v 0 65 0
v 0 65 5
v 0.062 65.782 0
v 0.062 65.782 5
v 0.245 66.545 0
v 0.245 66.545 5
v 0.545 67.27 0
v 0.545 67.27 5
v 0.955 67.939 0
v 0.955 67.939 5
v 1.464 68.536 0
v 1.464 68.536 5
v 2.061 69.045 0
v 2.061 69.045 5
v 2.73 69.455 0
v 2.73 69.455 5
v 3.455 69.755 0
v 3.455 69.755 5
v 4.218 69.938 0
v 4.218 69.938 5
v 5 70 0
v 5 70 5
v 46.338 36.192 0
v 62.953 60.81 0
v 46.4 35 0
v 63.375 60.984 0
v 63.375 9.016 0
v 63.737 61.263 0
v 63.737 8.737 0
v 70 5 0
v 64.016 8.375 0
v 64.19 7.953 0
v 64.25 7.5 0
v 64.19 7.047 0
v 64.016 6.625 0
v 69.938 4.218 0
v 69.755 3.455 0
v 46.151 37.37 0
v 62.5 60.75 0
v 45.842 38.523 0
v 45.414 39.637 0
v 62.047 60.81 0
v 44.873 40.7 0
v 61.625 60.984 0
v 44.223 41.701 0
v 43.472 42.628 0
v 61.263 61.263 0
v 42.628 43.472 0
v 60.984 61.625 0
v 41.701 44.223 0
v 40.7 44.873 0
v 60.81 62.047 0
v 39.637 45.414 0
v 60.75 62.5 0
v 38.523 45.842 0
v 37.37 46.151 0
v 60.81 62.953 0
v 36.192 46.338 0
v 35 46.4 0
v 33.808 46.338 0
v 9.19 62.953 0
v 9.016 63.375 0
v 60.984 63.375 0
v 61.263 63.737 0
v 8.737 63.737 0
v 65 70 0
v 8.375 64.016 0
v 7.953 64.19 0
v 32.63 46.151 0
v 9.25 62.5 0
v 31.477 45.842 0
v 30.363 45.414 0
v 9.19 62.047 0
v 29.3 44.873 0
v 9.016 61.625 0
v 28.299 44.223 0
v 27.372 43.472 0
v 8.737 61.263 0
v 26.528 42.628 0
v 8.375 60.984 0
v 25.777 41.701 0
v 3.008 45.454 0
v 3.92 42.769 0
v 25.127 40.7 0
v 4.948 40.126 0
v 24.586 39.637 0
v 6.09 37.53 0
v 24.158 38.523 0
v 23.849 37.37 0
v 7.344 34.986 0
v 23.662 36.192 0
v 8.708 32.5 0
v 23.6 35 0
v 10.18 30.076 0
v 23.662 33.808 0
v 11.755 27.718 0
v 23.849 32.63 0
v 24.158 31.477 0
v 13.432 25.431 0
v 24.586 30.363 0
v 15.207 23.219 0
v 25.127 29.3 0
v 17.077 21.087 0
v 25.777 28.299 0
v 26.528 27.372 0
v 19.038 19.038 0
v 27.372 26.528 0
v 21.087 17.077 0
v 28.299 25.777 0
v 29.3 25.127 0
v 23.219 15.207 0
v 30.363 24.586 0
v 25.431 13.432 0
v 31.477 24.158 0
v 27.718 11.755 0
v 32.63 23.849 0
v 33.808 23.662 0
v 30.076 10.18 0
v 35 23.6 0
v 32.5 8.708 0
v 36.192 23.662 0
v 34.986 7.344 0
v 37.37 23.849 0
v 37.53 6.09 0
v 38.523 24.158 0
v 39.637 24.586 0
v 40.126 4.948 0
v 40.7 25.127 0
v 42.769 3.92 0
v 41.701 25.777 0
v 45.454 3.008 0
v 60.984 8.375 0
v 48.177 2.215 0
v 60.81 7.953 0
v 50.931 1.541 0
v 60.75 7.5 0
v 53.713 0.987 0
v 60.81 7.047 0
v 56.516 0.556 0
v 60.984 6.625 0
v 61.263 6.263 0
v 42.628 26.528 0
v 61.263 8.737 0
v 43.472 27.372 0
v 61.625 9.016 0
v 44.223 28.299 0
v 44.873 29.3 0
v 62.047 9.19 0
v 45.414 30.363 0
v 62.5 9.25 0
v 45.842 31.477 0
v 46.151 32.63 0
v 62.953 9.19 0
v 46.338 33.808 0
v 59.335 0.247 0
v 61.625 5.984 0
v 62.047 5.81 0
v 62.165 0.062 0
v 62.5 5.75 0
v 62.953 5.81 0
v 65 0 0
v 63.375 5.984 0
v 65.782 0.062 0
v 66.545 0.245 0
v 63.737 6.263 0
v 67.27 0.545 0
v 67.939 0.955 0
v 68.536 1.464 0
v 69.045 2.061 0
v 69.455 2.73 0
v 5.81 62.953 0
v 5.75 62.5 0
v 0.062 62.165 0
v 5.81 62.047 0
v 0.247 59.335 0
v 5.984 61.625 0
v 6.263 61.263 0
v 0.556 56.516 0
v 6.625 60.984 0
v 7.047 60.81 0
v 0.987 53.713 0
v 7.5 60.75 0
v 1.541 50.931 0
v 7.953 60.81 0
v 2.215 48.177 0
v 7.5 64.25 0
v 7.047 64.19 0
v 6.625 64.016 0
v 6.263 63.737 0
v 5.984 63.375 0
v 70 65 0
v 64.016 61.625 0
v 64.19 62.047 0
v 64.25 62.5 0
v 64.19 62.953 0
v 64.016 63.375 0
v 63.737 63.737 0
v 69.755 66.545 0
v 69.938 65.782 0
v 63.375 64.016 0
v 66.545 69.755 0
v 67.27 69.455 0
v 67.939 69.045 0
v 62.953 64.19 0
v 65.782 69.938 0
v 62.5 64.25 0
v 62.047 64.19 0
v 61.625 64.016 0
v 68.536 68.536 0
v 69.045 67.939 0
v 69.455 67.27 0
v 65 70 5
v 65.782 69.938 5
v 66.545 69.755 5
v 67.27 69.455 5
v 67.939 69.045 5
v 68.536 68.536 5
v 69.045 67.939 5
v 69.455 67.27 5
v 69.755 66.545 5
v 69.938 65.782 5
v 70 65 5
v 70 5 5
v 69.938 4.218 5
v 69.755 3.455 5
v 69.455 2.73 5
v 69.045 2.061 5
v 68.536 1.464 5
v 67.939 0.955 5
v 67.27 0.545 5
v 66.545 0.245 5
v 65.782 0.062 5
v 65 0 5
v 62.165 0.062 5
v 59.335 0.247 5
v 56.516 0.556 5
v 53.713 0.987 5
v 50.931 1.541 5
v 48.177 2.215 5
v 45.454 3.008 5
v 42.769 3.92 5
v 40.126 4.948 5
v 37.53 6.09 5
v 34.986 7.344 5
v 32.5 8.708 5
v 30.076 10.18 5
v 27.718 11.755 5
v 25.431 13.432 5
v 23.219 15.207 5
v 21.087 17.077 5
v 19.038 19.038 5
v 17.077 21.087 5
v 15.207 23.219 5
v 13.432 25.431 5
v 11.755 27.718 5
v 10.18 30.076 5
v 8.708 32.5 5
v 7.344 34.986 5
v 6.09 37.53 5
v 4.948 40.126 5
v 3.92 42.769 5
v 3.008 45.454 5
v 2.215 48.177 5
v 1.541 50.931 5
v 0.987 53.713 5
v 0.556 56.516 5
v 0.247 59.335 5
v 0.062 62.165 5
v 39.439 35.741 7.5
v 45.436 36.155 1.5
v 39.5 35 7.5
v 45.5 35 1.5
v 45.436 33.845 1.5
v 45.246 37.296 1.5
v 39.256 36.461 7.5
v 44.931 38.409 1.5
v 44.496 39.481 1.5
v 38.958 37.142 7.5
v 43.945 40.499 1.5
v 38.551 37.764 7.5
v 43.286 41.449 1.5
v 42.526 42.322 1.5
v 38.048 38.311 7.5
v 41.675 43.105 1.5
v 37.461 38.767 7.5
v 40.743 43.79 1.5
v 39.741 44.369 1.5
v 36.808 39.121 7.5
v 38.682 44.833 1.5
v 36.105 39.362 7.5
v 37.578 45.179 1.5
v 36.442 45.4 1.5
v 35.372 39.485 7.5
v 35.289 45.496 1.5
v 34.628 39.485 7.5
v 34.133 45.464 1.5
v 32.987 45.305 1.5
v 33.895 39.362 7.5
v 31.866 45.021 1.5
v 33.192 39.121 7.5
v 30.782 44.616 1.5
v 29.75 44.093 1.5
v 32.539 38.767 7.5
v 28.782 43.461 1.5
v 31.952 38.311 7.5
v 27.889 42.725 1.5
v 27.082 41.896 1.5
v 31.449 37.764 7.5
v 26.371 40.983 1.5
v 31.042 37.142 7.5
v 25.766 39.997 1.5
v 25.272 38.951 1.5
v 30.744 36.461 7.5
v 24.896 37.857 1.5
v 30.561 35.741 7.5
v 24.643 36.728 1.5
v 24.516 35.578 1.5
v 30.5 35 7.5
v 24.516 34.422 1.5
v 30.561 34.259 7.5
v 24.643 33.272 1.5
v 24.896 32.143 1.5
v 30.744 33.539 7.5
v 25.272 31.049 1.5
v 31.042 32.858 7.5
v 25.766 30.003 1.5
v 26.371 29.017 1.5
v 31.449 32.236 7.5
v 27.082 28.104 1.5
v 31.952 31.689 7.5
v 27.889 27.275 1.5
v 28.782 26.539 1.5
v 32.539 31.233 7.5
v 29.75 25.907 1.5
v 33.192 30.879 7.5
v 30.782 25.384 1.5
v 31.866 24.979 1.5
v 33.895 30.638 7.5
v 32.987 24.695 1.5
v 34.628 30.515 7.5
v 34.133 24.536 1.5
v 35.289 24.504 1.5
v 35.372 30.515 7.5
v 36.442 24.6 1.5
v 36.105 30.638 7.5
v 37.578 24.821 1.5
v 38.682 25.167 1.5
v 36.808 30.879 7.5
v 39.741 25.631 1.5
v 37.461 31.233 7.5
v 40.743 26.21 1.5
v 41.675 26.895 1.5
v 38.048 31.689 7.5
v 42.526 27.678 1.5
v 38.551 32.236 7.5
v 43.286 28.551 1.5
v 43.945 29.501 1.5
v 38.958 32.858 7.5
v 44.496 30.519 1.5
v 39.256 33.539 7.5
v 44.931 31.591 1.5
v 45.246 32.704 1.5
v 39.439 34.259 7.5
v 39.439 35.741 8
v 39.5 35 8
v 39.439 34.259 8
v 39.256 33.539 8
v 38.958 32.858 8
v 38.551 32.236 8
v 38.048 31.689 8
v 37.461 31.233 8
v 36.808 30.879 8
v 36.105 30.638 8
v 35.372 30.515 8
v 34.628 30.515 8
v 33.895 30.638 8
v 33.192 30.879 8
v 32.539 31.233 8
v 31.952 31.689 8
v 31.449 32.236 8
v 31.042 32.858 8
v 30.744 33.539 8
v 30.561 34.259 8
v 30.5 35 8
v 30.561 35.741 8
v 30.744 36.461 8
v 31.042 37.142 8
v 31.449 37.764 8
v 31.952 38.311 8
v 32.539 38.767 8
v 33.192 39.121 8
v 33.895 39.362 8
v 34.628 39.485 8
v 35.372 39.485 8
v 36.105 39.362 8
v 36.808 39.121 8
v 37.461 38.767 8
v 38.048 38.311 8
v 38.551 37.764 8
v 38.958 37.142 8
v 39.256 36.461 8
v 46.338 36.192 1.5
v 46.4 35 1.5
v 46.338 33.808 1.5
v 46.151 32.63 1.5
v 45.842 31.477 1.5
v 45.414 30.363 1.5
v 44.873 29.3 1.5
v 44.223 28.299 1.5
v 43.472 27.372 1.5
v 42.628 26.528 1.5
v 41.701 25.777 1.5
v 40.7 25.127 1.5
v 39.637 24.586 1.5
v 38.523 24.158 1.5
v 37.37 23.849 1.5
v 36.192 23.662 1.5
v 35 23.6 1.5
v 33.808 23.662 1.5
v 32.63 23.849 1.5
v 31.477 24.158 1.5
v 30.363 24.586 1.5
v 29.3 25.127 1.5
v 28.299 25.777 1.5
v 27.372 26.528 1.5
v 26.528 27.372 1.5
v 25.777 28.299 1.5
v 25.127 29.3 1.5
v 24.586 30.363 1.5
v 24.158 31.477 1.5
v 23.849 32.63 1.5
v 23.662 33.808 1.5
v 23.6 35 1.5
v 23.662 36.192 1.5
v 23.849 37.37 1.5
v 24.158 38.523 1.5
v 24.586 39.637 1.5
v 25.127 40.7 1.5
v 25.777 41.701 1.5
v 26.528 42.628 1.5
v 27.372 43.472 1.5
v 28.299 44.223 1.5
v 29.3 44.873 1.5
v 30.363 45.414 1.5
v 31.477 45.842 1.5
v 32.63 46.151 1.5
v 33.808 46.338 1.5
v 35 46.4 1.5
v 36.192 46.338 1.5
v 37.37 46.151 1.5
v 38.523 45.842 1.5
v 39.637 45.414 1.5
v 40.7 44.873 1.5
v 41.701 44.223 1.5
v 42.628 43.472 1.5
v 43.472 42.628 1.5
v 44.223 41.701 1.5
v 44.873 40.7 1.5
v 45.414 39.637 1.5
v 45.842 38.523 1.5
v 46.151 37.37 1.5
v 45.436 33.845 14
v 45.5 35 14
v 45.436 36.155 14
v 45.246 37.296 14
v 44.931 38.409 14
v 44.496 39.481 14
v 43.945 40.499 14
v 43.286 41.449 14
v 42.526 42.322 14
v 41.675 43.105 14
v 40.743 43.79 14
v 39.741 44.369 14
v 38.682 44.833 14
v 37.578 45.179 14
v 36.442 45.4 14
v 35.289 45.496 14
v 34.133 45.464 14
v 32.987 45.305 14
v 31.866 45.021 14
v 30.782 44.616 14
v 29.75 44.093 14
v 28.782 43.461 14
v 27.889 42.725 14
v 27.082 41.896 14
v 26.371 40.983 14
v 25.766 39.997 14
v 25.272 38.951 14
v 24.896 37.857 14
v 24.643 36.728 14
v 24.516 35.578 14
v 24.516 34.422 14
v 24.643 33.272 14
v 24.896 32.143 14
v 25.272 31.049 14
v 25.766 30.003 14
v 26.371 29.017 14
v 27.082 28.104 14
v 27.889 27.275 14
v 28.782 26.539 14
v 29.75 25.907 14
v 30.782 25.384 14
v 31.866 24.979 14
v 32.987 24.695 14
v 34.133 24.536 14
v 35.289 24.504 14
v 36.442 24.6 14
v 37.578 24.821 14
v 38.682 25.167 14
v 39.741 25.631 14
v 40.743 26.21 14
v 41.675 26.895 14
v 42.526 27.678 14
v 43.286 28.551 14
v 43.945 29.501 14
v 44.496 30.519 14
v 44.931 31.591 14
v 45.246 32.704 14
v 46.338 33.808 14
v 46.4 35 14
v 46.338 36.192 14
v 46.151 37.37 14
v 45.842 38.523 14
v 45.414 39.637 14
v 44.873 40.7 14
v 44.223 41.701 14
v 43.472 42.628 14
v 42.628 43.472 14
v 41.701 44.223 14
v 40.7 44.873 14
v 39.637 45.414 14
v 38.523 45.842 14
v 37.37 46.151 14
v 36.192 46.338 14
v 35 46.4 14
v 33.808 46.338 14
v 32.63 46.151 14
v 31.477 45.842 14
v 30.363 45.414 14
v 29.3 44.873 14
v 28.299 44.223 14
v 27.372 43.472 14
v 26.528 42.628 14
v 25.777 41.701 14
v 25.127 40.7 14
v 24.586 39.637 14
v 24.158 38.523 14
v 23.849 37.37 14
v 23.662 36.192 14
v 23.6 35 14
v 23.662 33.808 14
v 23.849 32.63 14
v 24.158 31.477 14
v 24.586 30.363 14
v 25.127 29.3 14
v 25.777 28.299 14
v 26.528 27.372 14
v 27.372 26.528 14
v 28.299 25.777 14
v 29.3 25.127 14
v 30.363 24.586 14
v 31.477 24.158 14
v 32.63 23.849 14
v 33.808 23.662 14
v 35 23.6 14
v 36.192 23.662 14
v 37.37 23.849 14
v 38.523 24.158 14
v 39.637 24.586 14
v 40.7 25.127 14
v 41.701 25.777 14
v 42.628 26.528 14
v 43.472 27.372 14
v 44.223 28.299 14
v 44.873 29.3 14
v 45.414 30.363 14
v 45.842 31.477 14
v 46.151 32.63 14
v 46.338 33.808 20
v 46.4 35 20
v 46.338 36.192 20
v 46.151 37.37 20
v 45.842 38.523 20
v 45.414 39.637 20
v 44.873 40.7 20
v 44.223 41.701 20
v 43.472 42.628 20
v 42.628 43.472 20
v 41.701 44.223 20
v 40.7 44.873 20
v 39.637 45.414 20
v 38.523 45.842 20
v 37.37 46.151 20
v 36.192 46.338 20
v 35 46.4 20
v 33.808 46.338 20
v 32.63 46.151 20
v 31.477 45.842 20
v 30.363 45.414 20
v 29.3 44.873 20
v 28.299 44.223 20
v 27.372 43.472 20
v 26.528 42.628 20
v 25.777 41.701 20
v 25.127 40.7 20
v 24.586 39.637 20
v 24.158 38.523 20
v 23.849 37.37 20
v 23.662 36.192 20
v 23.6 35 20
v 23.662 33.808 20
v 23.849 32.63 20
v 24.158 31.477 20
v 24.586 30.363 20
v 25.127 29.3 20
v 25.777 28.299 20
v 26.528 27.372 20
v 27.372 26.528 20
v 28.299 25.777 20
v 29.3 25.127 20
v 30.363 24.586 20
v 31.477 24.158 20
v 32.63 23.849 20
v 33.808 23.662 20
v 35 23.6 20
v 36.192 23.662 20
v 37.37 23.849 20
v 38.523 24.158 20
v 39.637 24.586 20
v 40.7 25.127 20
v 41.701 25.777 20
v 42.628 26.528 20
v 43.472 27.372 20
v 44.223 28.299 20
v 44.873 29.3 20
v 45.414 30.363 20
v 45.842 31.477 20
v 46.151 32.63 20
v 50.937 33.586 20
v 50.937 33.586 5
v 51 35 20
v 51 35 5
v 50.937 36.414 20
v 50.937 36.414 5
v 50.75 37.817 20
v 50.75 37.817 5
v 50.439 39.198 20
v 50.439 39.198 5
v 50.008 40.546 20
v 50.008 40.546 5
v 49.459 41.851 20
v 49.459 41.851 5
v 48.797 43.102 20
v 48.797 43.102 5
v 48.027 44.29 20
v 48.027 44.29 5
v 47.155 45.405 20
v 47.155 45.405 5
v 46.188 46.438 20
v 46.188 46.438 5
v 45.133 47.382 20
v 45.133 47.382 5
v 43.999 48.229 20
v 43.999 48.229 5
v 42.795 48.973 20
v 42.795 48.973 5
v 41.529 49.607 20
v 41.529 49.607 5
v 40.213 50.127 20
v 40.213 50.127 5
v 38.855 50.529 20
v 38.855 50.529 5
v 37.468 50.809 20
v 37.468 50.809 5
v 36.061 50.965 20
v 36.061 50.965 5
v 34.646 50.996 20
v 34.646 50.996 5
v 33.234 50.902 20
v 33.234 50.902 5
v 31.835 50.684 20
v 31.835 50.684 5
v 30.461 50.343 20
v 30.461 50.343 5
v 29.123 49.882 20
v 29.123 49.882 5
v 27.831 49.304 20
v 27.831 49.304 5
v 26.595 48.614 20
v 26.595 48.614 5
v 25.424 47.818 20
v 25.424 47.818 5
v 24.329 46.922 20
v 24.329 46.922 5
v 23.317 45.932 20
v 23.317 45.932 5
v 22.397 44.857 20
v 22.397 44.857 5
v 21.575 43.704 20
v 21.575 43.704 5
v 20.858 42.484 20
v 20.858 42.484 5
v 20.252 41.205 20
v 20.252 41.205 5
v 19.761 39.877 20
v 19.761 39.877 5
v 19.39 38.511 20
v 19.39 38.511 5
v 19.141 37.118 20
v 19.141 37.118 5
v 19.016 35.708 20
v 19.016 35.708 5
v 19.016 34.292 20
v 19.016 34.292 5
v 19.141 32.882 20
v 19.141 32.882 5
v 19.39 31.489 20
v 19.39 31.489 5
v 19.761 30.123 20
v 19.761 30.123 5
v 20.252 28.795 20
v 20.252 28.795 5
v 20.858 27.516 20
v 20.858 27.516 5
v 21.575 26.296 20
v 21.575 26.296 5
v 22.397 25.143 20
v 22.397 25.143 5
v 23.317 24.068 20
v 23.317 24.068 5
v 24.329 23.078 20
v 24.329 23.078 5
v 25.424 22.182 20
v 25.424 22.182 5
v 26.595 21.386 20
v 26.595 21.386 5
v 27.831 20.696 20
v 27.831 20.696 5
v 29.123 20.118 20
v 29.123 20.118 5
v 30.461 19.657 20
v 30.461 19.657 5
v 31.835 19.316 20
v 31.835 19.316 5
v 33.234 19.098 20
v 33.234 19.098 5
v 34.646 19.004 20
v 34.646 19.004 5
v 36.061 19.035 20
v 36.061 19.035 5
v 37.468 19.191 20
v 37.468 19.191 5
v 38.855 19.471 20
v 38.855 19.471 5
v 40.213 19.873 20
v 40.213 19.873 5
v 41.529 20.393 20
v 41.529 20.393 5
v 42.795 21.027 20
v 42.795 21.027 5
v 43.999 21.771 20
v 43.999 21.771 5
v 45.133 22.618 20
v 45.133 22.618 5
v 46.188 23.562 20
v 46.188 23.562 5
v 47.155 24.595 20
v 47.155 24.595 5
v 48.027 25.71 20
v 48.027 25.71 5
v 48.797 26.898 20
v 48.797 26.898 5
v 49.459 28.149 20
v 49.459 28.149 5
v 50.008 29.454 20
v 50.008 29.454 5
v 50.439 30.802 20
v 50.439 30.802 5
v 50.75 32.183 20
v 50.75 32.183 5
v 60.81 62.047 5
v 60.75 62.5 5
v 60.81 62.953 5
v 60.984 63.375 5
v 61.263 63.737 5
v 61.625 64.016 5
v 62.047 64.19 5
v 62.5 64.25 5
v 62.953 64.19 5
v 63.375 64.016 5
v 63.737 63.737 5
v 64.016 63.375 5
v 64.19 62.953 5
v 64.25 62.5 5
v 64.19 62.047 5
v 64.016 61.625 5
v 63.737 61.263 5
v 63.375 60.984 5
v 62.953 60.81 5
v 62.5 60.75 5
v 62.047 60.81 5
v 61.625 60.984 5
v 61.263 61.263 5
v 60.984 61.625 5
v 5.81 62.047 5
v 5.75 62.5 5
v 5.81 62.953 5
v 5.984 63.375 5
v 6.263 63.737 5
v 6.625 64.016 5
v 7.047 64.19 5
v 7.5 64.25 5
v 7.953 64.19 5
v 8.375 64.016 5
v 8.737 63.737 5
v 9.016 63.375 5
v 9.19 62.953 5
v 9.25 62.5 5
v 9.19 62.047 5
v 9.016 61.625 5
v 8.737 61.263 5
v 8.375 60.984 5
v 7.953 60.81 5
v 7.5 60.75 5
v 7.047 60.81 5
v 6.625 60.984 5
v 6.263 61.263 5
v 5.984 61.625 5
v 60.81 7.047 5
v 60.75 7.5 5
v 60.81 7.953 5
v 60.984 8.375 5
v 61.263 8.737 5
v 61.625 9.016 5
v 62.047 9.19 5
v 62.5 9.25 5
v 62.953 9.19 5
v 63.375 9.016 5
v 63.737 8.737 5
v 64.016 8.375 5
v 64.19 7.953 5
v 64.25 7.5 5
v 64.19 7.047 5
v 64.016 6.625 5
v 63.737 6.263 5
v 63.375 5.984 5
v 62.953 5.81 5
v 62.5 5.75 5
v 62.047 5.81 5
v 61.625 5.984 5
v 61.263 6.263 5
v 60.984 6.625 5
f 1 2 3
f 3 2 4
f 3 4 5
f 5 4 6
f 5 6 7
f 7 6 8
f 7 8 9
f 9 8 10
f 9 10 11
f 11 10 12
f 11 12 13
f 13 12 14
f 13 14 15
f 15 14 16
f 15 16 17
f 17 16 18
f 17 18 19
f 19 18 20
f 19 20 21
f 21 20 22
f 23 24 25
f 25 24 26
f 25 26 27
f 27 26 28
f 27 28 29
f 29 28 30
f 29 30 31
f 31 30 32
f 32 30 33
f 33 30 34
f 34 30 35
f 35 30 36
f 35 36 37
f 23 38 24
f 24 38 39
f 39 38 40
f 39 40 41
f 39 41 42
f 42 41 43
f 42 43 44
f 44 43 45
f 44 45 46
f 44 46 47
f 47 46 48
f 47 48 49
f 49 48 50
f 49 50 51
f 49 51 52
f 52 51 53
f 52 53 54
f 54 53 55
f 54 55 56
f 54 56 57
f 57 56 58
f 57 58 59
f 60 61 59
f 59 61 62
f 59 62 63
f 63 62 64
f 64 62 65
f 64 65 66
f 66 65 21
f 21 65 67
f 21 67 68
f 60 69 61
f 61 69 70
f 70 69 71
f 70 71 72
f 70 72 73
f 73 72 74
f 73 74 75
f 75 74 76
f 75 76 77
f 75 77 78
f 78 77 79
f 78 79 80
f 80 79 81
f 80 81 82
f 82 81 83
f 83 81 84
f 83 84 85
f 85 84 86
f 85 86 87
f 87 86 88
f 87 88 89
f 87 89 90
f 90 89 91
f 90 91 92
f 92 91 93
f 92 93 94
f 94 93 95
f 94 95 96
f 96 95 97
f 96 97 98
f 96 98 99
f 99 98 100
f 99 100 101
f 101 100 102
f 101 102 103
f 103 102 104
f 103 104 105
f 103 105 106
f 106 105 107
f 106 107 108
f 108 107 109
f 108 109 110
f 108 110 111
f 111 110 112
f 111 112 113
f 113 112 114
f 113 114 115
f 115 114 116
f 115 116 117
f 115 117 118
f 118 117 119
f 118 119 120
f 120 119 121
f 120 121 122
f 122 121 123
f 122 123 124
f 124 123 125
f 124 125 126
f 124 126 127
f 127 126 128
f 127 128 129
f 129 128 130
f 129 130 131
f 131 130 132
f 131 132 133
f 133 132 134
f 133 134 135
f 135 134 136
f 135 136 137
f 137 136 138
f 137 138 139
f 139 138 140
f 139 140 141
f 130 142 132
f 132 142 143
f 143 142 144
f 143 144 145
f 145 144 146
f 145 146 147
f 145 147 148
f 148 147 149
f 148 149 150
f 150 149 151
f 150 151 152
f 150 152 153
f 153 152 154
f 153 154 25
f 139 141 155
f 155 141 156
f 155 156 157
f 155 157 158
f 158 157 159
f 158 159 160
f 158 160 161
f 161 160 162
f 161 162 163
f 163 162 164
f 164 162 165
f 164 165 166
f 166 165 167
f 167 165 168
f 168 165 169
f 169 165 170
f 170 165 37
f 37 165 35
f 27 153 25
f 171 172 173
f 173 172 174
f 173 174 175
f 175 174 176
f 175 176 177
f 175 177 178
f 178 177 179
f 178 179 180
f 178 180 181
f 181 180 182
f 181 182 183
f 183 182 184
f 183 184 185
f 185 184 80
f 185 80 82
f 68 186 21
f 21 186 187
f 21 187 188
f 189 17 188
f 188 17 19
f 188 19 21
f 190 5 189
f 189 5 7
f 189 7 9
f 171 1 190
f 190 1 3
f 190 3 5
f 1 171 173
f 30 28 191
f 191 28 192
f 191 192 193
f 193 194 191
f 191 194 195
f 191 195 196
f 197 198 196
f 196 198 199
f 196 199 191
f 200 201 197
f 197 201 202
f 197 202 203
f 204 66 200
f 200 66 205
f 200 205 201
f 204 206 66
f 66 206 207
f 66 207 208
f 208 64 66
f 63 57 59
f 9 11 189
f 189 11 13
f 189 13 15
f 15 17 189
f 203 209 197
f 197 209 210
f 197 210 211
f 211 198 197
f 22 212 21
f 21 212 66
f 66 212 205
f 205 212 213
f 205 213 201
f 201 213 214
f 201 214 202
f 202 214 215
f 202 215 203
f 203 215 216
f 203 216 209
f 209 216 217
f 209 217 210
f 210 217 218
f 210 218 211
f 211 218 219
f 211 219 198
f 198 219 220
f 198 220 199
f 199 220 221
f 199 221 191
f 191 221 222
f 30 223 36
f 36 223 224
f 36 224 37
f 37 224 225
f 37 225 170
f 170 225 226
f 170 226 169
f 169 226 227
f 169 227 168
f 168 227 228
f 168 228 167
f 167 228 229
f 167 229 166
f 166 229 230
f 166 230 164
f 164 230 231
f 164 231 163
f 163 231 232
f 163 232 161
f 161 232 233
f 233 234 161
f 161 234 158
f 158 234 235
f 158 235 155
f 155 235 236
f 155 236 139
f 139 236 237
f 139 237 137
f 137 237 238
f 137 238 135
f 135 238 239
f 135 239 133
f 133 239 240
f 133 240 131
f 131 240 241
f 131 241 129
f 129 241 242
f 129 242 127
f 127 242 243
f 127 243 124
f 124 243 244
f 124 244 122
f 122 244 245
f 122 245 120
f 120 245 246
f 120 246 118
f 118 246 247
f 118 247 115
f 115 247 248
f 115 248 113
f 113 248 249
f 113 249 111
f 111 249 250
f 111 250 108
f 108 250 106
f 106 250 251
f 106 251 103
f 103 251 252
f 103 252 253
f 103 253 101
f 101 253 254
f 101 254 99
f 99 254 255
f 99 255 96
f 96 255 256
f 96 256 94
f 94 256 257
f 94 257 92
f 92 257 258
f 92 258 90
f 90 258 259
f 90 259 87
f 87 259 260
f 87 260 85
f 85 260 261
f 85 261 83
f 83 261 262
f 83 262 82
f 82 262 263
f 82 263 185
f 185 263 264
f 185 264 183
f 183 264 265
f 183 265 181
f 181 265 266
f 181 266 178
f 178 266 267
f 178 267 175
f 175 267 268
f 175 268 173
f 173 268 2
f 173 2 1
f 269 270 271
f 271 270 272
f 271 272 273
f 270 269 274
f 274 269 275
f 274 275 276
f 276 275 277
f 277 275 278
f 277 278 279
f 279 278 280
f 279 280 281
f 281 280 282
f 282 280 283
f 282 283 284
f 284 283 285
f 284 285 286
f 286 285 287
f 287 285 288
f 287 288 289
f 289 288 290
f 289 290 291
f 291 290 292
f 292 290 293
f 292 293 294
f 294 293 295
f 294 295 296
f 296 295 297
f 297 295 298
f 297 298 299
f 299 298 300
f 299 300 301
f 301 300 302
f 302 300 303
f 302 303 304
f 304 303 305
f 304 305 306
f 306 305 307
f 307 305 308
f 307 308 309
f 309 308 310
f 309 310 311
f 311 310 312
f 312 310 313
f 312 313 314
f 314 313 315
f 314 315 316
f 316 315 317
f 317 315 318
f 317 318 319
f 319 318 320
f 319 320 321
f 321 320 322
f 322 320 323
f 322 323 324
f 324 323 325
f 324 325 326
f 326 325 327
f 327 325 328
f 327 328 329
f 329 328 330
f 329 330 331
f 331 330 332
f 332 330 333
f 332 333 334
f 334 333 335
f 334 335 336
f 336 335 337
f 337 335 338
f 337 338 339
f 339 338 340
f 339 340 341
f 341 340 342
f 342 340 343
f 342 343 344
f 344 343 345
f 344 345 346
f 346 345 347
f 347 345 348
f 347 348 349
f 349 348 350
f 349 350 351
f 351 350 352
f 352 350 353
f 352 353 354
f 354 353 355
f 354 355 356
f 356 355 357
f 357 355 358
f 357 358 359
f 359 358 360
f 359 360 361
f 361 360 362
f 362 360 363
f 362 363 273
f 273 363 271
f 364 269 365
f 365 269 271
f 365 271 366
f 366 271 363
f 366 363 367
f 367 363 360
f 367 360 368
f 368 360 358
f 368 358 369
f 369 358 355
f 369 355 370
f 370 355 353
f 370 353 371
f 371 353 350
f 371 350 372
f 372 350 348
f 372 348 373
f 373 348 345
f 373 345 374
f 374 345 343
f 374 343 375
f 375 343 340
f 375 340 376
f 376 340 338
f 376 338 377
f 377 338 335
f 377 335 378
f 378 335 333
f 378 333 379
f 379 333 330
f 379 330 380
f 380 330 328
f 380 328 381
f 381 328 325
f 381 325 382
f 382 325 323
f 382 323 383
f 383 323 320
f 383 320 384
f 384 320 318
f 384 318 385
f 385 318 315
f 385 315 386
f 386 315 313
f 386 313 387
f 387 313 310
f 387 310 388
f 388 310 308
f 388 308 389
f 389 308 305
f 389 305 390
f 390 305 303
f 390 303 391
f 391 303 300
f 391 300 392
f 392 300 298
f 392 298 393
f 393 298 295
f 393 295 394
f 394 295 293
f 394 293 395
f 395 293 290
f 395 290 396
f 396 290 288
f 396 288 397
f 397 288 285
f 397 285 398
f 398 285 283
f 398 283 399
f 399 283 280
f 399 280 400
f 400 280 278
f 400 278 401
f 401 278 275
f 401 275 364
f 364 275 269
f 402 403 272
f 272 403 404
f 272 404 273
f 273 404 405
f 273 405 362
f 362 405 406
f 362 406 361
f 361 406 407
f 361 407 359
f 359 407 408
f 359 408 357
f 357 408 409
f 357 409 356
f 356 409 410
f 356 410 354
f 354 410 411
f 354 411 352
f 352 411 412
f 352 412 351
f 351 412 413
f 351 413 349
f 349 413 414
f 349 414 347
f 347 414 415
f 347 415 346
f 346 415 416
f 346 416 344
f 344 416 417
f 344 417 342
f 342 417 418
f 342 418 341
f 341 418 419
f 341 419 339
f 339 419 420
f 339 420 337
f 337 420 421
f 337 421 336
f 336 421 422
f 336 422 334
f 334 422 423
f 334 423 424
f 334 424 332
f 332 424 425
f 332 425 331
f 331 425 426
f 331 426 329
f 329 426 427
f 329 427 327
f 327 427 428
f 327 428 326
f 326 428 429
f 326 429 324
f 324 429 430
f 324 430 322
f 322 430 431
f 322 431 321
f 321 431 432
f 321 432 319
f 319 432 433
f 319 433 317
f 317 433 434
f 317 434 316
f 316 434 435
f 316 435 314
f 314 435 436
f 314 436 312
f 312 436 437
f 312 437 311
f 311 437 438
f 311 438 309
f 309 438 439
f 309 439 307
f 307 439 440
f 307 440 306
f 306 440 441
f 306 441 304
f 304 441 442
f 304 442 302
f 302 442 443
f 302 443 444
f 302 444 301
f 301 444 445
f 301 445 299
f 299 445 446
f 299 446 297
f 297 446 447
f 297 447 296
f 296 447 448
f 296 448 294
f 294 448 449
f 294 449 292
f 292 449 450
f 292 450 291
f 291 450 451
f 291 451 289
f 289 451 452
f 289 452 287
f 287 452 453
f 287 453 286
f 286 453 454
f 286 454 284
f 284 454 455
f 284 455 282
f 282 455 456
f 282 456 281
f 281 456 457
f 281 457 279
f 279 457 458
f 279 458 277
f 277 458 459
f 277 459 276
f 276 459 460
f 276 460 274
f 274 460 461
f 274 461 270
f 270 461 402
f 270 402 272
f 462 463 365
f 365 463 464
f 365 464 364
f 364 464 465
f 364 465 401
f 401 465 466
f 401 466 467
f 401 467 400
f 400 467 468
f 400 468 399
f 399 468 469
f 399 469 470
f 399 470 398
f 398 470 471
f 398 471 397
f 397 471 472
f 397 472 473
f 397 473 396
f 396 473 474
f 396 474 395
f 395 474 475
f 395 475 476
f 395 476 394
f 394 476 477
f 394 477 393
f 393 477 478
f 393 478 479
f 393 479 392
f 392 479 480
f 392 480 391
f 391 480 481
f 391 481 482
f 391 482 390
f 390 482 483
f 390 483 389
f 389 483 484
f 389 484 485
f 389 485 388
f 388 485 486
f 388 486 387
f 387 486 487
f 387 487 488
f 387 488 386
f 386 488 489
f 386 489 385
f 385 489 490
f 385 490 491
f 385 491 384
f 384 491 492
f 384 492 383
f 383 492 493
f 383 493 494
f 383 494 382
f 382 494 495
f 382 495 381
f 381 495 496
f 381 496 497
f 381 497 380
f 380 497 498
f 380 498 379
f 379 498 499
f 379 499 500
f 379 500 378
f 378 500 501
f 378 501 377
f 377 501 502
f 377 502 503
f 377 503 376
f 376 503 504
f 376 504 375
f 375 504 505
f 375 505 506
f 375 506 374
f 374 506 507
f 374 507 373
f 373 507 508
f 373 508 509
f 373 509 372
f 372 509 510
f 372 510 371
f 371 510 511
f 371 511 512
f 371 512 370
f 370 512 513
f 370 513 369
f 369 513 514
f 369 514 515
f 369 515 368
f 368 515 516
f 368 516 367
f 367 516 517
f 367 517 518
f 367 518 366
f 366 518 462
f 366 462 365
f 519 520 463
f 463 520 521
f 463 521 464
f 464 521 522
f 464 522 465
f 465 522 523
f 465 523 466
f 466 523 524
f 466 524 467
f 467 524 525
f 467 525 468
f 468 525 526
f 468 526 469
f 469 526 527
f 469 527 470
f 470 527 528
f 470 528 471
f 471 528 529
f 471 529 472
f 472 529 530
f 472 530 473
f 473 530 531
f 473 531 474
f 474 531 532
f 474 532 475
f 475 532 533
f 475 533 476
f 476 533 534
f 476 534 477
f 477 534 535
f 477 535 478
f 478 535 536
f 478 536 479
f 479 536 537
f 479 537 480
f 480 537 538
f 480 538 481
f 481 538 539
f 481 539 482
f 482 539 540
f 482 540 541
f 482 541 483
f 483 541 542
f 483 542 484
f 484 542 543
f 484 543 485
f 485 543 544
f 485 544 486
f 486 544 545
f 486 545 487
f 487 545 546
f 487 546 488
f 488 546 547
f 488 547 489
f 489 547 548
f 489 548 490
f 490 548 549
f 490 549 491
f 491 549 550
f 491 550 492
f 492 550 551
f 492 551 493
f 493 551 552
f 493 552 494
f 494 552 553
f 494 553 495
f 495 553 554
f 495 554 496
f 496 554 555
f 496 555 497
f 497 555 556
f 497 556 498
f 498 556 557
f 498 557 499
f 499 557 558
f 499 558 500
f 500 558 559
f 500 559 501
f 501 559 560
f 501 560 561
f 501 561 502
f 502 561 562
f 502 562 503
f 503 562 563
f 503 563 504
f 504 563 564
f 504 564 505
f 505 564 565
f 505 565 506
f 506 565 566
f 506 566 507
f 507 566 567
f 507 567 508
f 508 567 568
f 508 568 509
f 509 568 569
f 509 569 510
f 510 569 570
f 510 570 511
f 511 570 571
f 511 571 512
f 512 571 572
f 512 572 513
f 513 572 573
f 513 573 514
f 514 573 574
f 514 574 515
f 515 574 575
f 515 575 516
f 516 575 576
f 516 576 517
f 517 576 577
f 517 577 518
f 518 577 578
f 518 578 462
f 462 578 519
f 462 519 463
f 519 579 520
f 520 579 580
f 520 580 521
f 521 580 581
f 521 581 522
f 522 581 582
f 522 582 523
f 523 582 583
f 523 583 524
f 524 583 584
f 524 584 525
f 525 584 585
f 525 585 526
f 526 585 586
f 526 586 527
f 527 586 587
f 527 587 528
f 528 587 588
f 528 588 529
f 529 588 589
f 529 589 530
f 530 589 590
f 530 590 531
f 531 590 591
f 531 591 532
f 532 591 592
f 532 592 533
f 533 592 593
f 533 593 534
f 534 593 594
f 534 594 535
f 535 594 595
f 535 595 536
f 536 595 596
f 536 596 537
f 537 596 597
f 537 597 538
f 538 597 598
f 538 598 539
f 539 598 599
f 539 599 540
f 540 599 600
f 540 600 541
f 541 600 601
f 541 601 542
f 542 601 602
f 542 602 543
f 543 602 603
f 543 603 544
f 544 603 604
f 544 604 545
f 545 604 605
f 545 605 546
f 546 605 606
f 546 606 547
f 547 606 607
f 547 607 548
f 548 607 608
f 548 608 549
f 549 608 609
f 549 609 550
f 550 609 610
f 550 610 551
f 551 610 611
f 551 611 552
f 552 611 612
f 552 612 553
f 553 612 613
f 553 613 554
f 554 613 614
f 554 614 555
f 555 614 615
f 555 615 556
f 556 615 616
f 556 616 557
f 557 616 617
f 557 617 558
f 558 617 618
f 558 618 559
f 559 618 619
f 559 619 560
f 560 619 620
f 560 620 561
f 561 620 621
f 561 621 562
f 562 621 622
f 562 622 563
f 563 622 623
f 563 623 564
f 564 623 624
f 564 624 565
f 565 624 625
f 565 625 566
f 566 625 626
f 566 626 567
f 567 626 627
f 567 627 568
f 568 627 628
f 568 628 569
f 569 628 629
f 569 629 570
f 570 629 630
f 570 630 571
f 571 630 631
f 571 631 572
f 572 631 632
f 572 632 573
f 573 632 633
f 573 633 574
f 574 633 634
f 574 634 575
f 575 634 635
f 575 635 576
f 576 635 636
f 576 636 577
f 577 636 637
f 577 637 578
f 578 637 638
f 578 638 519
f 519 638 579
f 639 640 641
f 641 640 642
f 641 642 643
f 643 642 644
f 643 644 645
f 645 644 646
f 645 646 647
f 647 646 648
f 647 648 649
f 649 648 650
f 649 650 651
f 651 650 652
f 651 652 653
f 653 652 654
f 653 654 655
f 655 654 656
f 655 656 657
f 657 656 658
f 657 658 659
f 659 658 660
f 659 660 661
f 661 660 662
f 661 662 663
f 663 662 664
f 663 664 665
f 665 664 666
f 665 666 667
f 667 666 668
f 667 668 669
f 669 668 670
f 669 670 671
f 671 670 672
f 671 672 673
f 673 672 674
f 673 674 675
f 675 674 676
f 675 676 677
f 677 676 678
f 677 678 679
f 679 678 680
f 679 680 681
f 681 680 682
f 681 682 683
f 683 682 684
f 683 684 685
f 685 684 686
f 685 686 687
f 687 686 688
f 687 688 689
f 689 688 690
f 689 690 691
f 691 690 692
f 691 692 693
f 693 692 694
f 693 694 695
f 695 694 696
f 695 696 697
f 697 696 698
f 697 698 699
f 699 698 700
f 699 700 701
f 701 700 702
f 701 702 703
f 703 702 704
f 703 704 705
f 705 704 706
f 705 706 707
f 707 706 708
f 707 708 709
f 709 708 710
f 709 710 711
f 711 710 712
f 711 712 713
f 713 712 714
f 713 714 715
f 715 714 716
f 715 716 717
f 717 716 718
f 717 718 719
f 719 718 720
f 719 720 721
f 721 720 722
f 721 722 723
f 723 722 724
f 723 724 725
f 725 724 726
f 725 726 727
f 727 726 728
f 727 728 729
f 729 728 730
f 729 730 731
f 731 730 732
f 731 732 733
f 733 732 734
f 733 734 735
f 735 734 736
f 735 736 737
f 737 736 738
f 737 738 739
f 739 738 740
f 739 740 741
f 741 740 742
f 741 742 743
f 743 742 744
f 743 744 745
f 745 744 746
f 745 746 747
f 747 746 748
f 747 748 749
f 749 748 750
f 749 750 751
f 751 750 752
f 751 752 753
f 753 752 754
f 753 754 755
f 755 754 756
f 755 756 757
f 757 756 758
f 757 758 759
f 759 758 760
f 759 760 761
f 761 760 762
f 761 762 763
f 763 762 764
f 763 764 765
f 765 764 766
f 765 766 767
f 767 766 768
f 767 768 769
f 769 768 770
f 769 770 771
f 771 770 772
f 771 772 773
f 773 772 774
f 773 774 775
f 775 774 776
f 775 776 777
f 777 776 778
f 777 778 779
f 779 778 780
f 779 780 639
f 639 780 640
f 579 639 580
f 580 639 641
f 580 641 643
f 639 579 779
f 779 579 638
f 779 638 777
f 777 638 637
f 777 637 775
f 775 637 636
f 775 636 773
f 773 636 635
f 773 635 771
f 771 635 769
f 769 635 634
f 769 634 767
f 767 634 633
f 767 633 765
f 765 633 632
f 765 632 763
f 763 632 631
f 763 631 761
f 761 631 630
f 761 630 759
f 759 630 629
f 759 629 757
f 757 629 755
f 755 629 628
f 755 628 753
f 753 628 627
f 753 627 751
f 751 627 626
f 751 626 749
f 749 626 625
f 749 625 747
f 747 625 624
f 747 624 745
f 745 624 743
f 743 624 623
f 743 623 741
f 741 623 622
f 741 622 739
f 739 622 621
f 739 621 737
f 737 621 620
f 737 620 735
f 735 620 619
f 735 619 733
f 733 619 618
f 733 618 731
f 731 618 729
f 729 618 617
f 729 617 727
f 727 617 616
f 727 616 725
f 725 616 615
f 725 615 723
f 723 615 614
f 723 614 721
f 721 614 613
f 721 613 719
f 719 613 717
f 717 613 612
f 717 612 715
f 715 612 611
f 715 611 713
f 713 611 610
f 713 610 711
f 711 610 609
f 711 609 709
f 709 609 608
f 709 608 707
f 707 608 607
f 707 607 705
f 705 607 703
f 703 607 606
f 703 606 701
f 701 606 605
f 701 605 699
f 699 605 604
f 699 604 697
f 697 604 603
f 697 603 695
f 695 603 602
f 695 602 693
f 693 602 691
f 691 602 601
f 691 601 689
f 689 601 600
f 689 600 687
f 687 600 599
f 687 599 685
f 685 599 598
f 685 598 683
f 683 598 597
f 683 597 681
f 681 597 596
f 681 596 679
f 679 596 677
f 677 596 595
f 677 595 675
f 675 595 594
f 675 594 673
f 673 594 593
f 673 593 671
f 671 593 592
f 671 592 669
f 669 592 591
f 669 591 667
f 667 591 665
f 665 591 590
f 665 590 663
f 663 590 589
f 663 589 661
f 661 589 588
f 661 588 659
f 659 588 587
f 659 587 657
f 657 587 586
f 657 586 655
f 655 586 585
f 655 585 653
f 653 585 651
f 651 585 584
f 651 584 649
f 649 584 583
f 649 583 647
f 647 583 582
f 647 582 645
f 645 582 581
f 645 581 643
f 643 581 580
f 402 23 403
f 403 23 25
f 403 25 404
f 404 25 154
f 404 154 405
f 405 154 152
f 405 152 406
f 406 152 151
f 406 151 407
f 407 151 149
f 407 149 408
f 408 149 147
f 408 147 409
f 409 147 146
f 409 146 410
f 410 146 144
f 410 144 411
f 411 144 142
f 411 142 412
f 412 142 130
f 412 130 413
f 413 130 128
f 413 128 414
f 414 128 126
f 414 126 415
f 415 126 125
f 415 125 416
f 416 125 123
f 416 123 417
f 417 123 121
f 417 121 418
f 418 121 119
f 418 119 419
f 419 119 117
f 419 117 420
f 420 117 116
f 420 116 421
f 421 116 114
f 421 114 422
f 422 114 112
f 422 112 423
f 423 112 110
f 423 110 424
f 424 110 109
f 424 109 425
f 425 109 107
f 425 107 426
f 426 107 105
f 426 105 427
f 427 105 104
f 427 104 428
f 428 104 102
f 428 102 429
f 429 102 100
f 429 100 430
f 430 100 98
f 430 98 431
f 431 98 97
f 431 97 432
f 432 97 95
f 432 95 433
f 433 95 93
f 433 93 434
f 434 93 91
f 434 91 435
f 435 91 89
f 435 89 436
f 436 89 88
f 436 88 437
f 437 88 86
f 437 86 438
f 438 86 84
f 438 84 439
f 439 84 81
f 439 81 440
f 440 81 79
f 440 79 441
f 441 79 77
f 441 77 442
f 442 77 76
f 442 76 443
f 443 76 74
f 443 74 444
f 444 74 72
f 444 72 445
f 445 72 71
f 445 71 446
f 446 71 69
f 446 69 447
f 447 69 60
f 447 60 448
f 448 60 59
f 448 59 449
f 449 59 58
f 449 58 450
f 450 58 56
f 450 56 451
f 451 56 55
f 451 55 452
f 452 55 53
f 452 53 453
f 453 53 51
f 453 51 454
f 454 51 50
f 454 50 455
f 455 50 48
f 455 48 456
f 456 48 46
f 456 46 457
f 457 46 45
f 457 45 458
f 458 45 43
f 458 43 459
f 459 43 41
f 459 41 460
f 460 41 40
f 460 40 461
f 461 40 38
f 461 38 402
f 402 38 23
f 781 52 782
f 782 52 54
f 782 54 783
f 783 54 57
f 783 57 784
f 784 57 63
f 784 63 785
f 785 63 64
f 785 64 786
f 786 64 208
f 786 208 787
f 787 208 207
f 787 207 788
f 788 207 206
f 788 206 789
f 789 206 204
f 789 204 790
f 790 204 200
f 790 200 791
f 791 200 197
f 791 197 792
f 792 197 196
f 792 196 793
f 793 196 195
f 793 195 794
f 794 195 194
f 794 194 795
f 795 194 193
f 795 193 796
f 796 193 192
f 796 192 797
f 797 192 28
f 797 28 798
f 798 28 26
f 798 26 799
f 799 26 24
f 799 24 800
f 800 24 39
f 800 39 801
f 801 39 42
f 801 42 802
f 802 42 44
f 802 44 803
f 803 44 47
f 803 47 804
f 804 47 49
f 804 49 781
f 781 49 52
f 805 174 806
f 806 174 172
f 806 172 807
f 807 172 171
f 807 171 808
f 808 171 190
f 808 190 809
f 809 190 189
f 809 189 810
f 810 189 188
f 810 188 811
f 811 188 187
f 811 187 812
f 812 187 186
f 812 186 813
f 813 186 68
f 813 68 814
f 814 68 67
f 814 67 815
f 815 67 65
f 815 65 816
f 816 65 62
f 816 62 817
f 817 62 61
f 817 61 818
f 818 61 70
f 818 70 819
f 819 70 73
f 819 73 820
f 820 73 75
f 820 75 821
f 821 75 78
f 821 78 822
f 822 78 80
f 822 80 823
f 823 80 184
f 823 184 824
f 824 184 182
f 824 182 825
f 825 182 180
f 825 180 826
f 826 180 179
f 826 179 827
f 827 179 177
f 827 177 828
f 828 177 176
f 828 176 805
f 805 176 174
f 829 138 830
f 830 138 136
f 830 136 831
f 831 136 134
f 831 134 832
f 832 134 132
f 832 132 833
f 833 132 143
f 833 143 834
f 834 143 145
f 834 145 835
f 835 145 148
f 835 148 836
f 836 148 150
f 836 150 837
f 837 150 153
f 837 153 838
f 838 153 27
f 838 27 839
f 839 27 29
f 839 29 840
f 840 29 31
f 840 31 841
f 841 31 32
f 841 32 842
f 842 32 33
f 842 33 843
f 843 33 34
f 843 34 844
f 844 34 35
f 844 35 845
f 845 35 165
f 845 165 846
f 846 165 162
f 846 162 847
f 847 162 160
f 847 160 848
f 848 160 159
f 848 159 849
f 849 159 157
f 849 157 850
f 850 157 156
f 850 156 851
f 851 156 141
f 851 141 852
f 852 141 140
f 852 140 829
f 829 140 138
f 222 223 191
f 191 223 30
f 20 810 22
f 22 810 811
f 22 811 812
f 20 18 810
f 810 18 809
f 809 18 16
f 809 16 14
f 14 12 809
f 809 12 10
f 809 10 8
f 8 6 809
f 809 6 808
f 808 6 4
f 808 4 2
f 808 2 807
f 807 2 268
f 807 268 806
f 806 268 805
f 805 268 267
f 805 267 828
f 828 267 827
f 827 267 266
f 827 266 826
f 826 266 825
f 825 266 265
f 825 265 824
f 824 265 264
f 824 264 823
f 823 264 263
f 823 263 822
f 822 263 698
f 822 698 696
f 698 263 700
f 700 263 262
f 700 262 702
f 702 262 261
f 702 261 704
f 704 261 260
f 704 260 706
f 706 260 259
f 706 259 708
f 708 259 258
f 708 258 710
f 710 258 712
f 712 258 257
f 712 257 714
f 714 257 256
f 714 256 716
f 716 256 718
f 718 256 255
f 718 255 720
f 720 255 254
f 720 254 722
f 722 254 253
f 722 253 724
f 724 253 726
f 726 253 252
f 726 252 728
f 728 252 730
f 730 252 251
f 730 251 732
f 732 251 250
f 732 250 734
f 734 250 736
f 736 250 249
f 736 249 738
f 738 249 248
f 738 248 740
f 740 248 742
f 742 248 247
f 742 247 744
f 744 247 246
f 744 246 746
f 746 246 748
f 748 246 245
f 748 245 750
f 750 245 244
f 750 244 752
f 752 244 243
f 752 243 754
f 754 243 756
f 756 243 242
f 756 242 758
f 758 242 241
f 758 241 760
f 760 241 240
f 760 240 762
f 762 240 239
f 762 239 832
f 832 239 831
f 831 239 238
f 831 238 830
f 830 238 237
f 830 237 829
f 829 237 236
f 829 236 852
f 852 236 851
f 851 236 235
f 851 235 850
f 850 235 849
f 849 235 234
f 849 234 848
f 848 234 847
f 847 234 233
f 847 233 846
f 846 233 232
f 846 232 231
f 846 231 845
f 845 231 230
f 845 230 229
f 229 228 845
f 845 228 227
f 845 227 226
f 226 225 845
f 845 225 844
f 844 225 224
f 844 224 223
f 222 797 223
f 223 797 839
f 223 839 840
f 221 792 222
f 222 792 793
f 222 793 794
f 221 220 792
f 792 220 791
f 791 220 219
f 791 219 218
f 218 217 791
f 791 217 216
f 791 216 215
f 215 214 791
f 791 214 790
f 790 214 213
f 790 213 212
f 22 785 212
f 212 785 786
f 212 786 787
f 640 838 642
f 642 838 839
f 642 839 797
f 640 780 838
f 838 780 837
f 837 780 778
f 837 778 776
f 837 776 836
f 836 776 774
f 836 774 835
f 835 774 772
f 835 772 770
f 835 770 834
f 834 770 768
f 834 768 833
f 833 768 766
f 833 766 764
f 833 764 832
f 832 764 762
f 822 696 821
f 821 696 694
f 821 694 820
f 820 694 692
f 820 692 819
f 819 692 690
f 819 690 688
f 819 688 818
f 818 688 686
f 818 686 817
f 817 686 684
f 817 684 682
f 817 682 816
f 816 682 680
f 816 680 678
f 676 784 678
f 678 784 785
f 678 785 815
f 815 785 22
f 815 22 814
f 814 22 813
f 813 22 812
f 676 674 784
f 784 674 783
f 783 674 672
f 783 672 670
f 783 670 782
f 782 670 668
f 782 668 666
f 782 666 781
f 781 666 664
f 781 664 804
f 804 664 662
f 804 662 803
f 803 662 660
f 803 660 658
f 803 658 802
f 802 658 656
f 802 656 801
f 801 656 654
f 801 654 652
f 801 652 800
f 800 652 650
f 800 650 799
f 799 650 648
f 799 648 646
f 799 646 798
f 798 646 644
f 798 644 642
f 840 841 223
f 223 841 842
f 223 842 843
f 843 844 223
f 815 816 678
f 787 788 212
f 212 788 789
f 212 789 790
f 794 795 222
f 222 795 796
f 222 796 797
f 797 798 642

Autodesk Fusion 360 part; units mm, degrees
sketch "Sketch1" plane through (0, 0, 0) normal (0, 0, 1) x (1, 0, 0)
  line L0 (0, 0) -> (70, 0)
  line L1 (70, 0) -> (70, 70)
  line L2 (70, 70) -> (0, 70)
  line L3 (0, 70) -> (0, 0)
  circle A0 centre (7.5, 62.5) radius 1.75
  circle A1 centre (62.5, 62.5) radius 1.75
  circle A2 centre (7.5, 7.5) radius 1.75
  circle A3 centre (62.5, 7.5) radius 1.75
  dimension "d1" = 70
  dimension "d2" = 70
  dimension "d3" = 3.5
  dimension "d4" = 7.5
  dimension "d5" = 7.5
  dimension "d8" = 55
  dimension "d9" = -55
extrude "Extrude1" add sketch "Sketch1" along normal blind 5
sketch "Sketch2" plane through (0, 0, 5) normal (0, 0, 1) x (-1, 0, 0)
  circle A0 centre (-62.5, -7.5) radius 1.75
  circle A1 centre (-7.5, -62.5) radius 1.75
  circle A2 centre (-7.5, -7.5) radius 1.75
  circle A3 centre (-62.5, -62.5) radius 1.75
  line L0 (0, -70) -> (0, 0)
  line L1 (0, 0) -> (-70, 0)
  line L2 (-70, 0) -> (-70, -70)
  line L3 (-70, -70) -> (0, -70)
  circle A4 centre (-35, -35) radius 11.4
  dimension "d12" = 22.8
extrude "Extrude2" cut sketch "Sketch2" against normal blind 5 contours A4
sketch "Sketch3" plane through (0, 0, 5) normal (0, 0, 1) x (-1, 0, 0)
  circle A0 centre (-35, -35) radius 11.4
  circle A1 centre (-62.5, -7.5) radius 1.75
  circle A2 centre (-7.5, -62.5) radius 1.75
  circle A3 centre (-7.5, -7.5) radius 1.75
  circle A4 centre (-62.5, -62.5) radius 1.75
  line L0 (0, -70) -> (0, 0)
  line L1 (0, 0) -> (-70, 0)
  line L2 (-70, 0) -> (-70, -70)
  line L3 (-70, -70) -> (0, -70)
  circle A5 centre (-35, -35) radius 16
  dimension "d15" = 32
extrude "Extrude3" add sketch "Sketch3" along normal blind 15 contours A0 | A5
sketch "Sketch4" plane through (0, 0, 20) normal (0, 0, 1) x (-1, 0, 0)
  circle A0 centre (-35, -35) radius 16
  circle A1 centre (-35, -35) radius 4.5
  dimension "d18" = 9
extrude "Extrude4" cut sketch "Sketch4" against normal blind 45 contours A1
sketch "Sketch5" plane through (0, 0, 20) normal (0, 0, 1) x (-1, 0, 0)
  circle A0 centre (-35, -35) radius 4.5
  circle A1 centre (-35, -35) radius 16
  circle A2 centre (-35, -35) radius 11.4
  dimension "d21" = 22.8
extrude "Extrude5" cut sketch "Sketch5" against normal blind 6 contours A2
extrude "Extrude6" add 1 faces at (25.9592, 35.7899, 5) along direction (0, 0, -1) blind 3.5
chamfer "Chamfer1" distance 6 angle 45 2 edges at (39.1955, 36.6273, 14) (39.1955, 36.6273, 1.5)
fillet "Fillet2" radius 65 1 edges at (0, 0, 2.5)
fillet "Fillet3" radius 5 3 edges at (70, 0, 2.5) (70, 70, 2.5) (0, 70, 2.5)
